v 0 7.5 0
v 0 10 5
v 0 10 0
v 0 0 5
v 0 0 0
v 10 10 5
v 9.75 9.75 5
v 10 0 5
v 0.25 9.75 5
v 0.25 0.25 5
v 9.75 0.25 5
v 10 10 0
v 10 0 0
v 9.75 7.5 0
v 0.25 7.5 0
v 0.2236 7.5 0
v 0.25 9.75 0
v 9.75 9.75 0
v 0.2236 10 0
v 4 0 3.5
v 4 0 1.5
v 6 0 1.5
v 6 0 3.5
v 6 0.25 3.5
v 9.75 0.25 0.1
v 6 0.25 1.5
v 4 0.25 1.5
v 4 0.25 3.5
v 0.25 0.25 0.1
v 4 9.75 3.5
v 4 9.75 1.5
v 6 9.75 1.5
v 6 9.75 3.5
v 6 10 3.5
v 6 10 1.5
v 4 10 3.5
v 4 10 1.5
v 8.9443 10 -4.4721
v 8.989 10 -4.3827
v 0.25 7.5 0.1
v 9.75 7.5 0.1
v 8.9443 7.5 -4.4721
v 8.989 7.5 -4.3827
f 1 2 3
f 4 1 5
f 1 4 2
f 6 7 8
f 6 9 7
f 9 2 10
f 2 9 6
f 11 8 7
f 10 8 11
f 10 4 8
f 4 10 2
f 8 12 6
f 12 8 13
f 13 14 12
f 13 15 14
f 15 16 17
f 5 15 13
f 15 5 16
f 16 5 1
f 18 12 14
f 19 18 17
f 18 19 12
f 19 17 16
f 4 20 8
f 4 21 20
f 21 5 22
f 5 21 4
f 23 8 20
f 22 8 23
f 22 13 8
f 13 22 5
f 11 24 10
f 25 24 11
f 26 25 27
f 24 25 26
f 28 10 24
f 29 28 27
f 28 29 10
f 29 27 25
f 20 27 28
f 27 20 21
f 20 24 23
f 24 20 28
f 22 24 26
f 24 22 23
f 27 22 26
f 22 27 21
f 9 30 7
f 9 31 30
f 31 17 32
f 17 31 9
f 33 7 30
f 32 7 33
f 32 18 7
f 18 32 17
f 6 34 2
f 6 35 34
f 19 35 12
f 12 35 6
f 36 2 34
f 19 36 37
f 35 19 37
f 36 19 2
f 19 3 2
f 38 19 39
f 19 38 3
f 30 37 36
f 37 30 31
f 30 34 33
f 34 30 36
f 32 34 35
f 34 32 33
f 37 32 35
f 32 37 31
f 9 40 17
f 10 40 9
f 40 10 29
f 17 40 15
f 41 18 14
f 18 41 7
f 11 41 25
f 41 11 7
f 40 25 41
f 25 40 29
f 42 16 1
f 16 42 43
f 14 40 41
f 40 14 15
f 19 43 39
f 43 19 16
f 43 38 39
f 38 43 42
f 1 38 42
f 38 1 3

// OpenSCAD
buildingX=10;
buildingY=10;
floorHeight=5;
windowWidth=2;
windowHeight=2;
wallThickness=0.25;
rampWidth=2.5;

cube([wallThickness,buildingY,floorHeight]);

translate([buildingX-wallThickness,0,0])
cube([wallThickness,buildingY,floorHeight]);

difference(){
cube([buildingX,wallThickness,floorHeight]);

translate([buildingX/2-windowWidth/2,0,floorHeight/2-windowHeight/2])
cube([windowWidth,wallThickness*10,windowHeight]);
}

difference(){
translate([0,buildingY-wallThickness,0])
cube([buildingX,wallThickness,floorHeight]);

translate([buildingX/2-windowWidth/2,buildingY-wallThickness,floorHeight/2-windowHeight/2])
cube([windowWidth,wallThickness*10,windowHeight]);
}

cube([buildingX,buildingY-rampWidth,0.1]);

translate([0,buildingY-rampWidth,0])
rotate([0,atan(floorHeight/buildingX),0]){
    cube([buildingX,rampWidth,0.1]);
}
